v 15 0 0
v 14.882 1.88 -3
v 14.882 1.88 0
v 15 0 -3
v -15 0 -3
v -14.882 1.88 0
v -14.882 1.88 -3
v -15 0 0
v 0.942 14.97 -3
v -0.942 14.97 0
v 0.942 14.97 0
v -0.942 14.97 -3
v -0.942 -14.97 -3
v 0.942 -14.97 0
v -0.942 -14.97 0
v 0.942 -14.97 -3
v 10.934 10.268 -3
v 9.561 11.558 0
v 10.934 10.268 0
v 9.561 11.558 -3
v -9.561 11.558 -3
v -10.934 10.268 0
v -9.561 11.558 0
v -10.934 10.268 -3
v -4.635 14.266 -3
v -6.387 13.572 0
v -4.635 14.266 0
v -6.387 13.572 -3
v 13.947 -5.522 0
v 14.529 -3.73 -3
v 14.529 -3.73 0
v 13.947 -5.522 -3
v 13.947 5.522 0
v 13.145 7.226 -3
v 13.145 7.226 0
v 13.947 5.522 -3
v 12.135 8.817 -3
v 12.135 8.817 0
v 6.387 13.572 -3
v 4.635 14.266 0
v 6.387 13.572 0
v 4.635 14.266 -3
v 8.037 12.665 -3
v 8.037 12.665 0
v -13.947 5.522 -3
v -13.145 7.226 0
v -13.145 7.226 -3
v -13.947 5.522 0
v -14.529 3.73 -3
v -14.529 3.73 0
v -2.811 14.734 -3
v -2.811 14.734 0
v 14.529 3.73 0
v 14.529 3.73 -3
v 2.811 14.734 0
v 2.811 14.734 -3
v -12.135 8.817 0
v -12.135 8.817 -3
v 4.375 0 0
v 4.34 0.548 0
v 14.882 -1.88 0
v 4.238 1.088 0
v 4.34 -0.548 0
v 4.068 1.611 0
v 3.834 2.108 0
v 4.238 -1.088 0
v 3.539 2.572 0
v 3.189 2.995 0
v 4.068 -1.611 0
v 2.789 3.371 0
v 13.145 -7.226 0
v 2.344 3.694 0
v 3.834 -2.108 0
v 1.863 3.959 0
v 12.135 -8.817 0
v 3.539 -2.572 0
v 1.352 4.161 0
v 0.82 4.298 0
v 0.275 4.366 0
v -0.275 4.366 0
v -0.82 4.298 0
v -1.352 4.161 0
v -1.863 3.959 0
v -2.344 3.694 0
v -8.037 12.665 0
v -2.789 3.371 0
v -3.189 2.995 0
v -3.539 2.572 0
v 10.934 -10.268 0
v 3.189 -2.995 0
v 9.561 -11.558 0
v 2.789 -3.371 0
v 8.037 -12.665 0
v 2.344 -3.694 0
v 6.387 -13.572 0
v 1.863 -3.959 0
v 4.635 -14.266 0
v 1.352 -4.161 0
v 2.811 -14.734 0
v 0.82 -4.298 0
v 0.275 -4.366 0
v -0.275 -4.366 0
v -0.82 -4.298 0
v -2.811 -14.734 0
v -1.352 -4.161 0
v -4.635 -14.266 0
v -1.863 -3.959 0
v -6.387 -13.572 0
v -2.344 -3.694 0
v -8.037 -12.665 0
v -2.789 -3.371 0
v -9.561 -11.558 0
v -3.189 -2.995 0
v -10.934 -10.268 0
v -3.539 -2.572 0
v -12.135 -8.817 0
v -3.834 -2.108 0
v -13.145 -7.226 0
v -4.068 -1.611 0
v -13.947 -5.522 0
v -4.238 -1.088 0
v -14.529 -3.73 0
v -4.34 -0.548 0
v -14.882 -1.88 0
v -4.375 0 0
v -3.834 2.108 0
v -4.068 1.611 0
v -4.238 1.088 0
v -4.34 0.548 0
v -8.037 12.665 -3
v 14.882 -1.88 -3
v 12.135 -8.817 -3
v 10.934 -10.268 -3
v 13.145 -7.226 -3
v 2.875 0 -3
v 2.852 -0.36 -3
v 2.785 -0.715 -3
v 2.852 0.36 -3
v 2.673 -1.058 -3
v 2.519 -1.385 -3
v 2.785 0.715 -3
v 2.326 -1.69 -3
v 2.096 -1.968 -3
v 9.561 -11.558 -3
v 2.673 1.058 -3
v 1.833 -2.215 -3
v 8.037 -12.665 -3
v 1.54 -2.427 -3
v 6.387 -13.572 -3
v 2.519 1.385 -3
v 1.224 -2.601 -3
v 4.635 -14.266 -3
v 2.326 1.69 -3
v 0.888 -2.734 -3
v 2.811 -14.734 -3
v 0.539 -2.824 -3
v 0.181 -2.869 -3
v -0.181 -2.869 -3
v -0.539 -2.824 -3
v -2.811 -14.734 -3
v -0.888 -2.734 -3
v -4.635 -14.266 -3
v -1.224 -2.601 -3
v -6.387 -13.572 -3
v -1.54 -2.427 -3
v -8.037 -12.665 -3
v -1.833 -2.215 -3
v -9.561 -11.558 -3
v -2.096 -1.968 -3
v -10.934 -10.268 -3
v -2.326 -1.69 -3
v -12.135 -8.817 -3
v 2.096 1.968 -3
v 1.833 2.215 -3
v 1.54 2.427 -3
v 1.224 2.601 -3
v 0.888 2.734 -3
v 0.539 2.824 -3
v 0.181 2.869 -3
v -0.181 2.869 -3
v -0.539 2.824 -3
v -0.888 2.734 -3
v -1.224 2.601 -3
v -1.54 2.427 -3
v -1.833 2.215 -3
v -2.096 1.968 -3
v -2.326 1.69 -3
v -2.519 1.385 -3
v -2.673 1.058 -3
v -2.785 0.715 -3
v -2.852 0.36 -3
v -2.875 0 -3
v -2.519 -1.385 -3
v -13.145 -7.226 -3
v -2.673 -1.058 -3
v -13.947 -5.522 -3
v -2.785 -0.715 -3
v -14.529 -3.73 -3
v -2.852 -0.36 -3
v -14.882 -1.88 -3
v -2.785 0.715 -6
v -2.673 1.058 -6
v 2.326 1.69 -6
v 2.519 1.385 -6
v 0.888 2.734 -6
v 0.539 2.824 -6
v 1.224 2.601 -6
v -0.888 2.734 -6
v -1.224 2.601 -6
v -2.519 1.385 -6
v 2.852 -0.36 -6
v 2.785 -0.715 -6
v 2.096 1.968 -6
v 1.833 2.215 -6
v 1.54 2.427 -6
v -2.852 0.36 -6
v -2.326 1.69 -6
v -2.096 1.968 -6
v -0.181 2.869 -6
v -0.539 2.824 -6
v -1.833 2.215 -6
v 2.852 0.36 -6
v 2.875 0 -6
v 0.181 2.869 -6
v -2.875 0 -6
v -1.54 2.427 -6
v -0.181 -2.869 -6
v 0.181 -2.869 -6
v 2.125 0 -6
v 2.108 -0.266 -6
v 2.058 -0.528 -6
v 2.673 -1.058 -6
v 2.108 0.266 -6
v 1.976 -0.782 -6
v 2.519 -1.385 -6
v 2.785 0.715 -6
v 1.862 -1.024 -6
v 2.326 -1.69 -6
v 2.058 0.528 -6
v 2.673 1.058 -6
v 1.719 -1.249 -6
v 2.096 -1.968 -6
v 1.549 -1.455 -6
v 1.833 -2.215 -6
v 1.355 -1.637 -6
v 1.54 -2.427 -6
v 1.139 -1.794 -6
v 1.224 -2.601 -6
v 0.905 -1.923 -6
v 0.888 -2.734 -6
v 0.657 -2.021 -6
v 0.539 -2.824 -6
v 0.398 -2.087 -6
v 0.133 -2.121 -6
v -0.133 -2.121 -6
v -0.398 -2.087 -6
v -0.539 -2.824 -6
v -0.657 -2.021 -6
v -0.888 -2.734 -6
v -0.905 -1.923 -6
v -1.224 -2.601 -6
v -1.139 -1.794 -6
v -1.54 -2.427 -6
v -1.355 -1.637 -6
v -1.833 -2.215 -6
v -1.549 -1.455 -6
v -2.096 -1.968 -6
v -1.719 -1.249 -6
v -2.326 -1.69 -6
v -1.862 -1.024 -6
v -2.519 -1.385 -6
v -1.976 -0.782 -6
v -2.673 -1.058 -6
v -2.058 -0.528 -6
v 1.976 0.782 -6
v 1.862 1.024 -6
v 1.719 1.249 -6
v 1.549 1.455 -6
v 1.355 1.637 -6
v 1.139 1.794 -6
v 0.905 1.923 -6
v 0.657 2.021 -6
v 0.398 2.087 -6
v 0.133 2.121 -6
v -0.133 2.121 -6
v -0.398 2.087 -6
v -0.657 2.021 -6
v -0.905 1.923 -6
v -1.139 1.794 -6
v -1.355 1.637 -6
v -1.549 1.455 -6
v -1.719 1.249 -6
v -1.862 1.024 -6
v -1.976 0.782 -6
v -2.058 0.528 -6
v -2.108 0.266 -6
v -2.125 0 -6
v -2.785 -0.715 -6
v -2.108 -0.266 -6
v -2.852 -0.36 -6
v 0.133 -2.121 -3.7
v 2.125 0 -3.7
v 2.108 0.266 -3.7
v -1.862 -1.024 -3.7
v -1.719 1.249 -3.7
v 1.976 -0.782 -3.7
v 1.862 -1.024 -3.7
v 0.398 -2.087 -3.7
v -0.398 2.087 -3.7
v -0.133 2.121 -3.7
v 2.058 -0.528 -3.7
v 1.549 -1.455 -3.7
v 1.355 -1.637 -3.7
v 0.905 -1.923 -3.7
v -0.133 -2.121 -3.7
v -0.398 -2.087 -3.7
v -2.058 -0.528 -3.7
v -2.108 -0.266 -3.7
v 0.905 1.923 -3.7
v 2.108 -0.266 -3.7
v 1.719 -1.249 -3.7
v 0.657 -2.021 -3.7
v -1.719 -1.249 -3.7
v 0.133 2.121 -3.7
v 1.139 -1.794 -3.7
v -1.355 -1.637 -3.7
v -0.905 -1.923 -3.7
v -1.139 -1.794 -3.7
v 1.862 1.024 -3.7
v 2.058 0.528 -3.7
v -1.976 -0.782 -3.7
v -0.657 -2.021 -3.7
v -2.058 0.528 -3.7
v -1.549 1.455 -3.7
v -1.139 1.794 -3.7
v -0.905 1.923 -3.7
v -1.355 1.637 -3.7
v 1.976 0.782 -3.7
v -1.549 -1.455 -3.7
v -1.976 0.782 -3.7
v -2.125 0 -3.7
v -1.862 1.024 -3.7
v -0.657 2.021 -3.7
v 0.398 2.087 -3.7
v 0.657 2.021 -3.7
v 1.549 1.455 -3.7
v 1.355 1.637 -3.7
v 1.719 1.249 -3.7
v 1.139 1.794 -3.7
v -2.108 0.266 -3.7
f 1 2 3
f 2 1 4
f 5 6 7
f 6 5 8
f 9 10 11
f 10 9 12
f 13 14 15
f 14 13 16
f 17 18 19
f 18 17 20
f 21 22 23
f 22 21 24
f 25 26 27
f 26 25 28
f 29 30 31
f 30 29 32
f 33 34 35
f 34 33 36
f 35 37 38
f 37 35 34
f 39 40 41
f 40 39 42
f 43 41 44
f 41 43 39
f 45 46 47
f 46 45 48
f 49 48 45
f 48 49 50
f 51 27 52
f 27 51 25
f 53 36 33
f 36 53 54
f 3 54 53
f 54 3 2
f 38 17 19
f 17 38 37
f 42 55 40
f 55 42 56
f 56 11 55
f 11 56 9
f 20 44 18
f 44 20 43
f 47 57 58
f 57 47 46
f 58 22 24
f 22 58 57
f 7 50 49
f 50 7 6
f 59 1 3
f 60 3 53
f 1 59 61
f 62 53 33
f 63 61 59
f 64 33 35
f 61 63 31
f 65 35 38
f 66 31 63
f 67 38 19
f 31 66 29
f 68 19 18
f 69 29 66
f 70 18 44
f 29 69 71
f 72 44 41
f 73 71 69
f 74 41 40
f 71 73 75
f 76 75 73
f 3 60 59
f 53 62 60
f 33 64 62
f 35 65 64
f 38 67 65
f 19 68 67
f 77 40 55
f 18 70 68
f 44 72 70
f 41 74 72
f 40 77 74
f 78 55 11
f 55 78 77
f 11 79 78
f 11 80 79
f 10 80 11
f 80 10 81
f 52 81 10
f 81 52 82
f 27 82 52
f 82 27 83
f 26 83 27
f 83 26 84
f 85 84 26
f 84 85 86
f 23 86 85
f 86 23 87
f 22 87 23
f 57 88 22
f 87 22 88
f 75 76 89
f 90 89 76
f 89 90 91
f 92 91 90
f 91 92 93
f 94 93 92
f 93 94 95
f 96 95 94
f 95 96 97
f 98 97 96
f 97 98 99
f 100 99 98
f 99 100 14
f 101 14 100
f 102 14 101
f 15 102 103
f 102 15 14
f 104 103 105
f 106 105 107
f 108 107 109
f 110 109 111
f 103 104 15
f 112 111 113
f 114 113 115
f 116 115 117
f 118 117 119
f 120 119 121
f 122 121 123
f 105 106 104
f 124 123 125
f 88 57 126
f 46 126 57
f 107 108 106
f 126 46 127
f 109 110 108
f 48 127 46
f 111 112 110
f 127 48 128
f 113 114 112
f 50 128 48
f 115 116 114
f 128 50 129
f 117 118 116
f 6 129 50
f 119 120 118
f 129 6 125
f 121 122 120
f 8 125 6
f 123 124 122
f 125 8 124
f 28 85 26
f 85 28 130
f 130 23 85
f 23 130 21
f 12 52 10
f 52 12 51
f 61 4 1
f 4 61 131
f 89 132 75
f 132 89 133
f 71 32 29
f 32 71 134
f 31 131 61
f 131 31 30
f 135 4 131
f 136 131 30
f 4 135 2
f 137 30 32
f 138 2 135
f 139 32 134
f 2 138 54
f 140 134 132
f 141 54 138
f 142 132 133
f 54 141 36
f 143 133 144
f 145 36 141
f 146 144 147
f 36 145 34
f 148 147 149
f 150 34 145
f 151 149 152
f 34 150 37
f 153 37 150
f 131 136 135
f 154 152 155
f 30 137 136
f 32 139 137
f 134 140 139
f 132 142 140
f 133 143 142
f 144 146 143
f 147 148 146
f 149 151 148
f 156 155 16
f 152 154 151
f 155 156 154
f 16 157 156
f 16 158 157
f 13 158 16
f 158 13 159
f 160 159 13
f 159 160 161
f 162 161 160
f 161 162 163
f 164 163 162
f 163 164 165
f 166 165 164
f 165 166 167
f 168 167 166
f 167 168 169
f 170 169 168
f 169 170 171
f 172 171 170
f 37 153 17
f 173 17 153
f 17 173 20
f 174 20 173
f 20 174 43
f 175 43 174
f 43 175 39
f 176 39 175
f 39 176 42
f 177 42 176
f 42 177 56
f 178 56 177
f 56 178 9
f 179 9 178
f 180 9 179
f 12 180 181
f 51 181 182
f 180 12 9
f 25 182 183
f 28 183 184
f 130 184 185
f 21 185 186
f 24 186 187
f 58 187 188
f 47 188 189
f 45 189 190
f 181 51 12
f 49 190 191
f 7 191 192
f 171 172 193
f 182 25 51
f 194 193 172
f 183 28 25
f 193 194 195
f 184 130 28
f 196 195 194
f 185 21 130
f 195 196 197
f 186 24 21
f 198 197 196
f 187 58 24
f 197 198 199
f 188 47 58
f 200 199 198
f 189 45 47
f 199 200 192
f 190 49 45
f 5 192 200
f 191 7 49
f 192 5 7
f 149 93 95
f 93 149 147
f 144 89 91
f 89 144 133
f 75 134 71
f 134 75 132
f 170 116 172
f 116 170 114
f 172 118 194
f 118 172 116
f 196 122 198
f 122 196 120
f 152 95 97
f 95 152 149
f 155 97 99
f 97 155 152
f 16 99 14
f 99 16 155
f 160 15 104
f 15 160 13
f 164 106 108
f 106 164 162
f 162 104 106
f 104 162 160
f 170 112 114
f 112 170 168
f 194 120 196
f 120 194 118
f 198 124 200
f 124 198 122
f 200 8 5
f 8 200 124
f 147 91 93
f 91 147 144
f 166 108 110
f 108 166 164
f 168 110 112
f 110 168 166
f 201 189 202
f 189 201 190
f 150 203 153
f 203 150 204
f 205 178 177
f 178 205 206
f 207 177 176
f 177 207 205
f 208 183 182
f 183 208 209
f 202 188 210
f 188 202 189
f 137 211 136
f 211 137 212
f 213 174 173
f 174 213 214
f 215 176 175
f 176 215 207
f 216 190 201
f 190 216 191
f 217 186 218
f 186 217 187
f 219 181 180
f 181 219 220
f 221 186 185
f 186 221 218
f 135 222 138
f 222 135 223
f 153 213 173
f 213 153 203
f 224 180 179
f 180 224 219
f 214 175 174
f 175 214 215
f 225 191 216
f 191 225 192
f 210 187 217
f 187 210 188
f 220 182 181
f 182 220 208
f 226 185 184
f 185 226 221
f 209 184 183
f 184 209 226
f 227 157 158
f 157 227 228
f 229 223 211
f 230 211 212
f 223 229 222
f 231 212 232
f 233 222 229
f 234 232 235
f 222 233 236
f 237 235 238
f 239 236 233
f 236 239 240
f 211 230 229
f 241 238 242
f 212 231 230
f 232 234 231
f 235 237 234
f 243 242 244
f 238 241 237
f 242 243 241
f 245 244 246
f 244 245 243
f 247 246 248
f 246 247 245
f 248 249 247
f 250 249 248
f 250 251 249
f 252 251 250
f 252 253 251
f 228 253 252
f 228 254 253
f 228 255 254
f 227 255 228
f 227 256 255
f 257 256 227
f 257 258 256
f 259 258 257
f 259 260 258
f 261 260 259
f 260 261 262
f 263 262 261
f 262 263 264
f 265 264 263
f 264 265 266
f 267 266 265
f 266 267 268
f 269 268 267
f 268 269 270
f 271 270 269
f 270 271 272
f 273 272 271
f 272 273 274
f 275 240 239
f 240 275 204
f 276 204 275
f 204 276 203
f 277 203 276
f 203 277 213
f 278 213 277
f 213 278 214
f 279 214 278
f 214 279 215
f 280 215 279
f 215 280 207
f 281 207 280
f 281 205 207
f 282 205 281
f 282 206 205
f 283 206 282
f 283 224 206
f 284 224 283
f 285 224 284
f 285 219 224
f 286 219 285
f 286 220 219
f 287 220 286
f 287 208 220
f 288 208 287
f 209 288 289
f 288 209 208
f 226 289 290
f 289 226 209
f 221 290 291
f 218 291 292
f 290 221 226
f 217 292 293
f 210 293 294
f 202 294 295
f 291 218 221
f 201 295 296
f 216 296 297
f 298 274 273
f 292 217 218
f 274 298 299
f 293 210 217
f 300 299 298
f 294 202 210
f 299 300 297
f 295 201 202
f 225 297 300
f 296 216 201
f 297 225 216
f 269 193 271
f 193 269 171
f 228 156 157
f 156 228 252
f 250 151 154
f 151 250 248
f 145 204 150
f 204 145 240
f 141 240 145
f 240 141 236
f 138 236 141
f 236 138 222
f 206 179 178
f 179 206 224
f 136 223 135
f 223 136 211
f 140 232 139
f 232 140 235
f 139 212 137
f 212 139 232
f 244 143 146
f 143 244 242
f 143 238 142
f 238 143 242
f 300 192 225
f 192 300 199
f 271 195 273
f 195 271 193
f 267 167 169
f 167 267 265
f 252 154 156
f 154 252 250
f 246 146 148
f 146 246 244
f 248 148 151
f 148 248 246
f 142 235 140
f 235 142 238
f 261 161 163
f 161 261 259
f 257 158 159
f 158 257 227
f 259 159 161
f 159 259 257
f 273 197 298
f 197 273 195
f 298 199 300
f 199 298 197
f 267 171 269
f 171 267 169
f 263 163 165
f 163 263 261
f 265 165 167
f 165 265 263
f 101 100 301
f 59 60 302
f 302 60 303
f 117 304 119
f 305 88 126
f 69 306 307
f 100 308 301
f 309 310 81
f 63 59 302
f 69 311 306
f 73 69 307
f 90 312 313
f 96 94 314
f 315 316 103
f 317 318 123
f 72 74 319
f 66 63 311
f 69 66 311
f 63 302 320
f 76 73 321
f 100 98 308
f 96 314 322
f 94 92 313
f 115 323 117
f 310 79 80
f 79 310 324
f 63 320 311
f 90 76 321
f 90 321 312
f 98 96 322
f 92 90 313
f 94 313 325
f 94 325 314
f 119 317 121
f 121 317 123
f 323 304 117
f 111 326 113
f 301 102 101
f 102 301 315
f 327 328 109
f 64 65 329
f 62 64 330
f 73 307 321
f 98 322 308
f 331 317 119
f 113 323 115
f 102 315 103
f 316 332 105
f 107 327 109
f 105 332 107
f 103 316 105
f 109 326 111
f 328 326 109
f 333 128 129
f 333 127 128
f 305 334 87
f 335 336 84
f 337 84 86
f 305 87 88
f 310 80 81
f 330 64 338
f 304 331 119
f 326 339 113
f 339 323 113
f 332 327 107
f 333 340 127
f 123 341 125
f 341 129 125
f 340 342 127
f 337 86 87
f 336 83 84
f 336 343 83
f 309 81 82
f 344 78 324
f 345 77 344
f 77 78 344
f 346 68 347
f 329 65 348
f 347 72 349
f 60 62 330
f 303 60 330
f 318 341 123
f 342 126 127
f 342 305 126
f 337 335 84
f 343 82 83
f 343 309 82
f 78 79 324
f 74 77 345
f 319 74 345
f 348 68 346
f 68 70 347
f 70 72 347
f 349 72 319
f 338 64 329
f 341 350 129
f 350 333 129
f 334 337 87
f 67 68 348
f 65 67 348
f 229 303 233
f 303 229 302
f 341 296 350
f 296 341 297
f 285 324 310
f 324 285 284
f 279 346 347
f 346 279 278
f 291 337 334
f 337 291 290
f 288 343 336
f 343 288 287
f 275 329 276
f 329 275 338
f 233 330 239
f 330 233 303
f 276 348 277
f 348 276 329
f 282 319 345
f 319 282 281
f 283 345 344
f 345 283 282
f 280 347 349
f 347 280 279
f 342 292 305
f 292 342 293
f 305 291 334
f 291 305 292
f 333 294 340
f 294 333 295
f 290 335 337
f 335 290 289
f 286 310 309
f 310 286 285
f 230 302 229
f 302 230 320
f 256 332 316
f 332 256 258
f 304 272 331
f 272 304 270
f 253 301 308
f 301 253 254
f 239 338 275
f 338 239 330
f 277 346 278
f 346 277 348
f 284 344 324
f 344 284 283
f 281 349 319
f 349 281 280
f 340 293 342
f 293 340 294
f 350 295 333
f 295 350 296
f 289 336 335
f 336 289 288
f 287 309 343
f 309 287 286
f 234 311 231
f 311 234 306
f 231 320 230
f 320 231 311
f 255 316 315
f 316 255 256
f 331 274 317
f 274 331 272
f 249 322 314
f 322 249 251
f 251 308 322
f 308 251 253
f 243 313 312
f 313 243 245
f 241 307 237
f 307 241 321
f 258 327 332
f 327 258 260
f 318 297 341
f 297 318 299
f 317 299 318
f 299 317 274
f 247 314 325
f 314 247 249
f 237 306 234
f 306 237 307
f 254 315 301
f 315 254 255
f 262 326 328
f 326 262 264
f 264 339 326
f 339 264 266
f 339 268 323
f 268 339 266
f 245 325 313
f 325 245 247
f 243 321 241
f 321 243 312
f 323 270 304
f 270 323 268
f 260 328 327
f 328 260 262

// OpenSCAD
$fn = 50;


difference() {
	union() {
		translate(v = [0, 0, -3.0000000000]) {
			cylinder(h = 3, r = 15.0000000000);
		}
		translate(v = [0, 0, -6.0000000000]) {
			cylinder(h = 6, r = 2.8750000000);
		}
	}
	union() {
		translate(v = [0, 0, 0]) {
			rotate(a = [0, 0, 0]) {
				difference() {
					union() {
						translate(v = [0, 0, -6.0000000000]) {
							cylinder(h = 6, r = 2.0000000000);
						}
						translate(v = [0, 0, -3.7000000000]) {
							cylinder(h = 3.7000000000, r1 = 2.1250000000, r2 = 4.3750000000);
						}
						translate(v = [0, 0, -6.0000000000]) {
							cylinder(h = 6, r = 2.1250000000);
						}
						translate(v = [0, 0, -6.0000000000]) {
							cylinder(h = 6, r = 2.0000000000);
						}
					}
					union();
				}
			}
		}
	}
}
